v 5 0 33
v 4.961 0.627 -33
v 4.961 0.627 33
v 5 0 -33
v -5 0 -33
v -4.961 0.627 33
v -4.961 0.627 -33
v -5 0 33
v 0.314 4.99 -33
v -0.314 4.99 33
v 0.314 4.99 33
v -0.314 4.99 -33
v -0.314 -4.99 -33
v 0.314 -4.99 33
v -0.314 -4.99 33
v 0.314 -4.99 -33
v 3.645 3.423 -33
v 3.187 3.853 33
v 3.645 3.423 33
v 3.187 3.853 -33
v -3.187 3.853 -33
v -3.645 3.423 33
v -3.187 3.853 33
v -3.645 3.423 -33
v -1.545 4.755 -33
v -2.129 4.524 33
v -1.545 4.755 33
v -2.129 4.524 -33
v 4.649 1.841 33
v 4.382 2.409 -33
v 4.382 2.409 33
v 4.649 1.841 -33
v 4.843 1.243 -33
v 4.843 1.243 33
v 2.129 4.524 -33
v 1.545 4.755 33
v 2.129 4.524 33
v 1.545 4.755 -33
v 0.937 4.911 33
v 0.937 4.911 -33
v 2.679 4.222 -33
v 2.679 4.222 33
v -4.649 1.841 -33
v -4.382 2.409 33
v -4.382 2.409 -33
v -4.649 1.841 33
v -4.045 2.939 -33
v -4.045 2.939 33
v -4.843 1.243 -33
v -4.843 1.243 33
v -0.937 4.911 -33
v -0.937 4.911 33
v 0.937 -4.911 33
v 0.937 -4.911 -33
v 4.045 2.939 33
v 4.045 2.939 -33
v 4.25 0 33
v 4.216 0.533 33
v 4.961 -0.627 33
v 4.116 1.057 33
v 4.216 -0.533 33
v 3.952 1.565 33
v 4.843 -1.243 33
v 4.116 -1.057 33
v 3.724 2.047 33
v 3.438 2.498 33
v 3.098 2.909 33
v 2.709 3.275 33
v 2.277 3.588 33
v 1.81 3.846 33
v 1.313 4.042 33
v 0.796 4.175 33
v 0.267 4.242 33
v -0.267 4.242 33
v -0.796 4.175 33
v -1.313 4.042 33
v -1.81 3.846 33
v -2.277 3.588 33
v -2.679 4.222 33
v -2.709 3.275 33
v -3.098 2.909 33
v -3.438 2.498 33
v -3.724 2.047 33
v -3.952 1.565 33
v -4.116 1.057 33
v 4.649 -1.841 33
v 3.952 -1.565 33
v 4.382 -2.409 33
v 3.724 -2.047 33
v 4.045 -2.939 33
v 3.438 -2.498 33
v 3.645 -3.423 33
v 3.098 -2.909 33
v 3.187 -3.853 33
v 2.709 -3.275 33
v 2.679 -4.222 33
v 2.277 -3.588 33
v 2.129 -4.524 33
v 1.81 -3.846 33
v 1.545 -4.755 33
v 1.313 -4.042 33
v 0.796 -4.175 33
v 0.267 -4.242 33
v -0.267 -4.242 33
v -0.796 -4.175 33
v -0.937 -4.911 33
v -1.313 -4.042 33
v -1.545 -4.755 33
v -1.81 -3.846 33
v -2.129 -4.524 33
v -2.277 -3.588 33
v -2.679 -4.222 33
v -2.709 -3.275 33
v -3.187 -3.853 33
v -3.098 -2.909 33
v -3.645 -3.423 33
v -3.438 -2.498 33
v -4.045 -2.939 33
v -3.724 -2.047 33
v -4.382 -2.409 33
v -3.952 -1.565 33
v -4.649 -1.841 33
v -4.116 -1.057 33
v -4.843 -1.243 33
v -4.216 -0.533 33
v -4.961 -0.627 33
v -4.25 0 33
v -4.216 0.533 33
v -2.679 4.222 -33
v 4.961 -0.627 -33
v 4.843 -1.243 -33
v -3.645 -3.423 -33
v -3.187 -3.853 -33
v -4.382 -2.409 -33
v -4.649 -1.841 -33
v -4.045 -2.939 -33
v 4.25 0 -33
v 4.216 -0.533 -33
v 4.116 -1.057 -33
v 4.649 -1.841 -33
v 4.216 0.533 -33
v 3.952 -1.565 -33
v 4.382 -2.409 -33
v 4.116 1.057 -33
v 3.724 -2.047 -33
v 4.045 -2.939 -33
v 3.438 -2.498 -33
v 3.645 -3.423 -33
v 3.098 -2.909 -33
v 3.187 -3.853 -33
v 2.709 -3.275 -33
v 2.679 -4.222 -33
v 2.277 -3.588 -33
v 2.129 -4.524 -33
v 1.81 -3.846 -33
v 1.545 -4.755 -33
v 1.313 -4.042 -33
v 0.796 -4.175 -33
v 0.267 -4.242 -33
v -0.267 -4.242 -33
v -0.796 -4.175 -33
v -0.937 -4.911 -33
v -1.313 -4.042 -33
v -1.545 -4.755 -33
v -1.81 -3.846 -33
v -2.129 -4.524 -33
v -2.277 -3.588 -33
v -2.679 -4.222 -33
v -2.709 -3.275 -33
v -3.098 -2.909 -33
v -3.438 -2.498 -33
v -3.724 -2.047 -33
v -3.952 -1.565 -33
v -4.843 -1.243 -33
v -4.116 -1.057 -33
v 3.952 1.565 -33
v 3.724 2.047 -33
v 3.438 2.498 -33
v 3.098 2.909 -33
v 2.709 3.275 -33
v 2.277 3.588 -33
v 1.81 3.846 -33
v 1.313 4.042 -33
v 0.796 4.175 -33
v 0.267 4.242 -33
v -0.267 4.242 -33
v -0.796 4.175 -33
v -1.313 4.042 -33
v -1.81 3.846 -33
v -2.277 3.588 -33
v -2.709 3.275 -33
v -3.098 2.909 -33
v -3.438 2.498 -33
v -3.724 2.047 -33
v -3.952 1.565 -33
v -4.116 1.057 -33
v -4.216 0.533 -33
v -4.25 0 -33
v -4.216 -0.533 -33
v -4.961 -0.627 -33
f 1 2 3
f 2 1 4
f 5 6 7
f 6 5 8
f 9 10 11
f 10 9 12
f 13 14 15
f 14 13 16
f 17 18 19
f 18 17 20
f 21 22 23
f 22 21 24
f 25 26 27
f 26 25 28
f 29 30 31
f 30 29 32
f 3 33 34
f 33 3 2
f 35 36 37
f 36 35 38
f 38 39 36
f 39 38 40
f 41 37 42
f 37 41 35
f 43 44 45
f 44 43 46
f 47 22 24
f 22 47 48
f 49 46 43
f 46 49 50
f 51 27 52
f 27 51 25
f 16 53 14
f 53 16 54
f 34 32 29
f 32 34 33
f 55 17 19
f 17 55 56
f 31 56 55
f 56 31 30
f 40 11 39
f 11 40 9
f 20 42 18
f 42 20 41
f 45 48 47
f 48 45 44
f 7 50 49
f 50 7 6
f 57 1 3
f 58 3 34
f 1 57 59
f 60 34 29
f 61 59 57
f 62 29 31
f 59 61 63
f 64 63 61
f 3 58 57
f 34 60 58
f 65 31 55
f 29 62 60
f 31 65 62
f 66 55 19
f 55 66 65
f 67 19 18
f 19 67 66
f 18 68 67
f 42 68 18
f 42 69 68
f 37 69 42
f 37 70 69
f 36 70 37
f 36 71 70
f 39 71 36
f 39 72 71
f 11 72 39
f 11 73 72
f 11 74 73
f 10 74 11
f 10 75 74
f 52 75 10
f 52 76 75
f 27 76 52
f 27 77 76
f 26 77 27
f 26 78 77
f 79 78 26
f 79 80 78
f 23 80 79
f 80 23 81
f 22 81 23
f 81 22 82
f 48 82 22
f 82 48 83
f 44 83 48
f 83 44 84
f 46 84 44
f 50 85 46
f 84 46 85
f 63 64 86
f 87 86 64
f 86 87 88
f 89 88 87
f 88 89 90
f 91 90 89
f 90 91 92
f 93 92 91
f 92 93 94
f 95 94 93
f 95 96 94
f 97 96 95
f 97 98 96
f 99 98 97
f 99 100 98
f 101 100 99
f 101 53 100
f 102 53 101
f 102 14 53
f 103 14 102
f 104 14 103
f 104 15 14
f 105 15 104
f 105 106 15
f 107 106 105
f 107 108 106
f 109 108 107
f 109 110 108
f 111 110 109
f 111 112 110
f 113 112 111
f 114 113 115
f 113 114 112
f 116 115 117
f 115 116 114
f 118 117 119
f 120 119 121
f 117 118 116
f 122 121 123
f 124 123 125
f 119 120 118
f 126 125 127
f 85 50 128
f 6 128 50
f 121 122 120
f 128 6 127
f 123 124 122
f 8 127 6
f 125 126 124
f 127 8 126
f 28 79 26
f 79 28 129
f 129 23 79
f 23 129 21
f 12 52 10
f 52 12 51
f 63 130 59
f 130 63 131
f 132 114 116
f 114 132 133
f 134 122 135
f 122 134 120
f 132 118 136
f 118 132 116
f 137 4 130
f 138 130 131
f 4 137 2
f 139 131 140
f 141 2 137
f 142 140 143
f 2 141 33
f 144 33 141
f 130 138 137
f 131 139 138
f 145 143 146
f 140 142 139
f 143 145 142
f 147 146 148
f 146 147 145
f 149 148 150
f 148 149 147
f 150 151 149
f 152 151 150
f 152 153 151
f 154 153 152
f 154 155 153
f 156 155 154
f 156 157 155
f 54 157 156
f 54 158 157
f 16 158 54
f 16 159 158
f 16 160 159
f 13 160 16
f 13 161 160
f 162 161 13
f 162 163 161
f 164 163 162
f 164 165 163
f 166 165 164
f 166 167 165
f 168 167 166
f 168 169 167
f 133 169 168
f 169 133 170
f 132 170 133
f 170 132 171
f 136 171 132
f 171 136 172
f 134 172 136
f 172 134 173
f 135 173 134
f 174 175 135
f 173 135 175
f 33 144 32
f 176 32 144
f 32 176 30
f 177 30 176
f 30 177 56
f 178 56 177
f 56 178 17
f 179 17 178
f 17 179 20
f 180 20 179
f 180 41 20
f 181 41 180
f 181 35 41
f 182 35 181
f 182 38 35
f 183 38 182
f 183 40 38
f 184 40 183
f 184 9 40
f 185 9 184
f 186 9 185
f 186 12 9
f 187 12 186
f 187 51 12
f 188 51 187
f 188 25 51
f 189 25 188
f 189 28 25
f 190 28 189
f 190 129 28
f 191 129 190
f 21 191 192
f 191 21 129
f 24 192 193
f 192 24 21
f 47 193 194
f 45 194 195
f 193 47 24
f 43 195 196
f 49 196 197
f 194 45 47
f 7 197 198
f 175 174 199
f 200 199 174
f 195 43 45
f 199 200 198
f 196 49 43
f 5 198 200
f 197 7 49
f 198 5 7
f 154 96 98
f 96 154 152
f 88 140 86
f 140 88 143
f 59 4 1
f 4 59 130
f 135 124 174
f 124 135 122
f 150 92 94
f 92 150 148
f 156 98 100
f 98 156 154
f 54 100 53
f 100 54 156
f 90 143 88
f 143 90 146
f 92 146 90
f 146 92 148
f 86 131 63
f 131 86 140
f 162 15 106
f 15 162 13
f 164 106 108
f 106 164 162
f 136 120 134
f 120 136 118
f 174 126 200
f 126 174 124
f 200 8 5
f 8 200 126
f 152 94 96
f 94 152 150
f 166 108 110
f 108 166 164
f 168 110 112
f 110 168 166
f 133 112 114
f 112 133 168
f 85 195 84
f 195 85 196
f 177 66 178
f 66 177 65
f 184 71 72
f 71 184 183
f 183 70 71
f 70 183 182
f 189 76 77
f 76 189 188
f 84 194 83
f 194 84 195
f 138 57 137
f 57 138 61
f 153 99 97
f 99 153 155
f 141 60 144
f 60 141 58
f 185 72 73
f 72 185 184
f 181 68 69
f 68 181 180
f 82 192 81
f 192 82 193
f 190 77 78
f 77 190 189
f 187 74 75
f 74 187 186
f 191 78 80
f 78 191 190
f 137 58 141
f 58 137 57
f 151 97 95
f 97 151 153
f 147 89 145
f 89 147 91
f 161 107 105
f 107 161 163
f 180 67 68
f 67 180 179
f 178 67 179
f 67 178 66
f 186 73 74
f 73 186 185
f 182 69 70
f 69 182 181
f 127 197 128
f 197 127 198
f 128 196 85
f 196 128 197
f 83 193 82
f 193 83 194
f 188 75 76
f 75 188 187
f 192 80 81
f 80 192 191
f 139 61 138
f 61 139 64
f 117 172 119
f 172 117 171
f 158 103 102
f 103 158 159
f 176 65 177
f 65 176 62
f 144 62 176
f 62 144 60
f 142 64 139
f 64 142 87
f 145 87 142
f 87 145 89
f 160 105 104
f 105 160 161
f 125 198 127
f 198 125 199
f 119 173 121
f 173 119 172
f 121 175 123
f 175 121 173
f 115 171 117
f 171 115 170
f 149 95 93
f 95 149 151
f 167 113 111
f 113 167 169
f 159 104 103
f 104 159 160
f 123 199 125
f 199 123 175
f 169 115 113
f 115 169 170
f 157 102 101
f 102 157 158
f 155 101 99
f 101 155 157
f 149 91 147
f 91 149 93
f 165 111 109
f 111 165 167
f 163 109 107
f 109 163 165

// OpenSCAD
$fn = 50;


difference() {
	union() {
		translate(v = [0, 0, -33.0000000000]) {
			cylinder(h = 66, r = 5.0000000000);
		}
	}
	union() {
		translate(v = [0, 0, -100.0000000000]) {
			cylinder(h = 200, r = 4.2500000000);
		}
	}
}
